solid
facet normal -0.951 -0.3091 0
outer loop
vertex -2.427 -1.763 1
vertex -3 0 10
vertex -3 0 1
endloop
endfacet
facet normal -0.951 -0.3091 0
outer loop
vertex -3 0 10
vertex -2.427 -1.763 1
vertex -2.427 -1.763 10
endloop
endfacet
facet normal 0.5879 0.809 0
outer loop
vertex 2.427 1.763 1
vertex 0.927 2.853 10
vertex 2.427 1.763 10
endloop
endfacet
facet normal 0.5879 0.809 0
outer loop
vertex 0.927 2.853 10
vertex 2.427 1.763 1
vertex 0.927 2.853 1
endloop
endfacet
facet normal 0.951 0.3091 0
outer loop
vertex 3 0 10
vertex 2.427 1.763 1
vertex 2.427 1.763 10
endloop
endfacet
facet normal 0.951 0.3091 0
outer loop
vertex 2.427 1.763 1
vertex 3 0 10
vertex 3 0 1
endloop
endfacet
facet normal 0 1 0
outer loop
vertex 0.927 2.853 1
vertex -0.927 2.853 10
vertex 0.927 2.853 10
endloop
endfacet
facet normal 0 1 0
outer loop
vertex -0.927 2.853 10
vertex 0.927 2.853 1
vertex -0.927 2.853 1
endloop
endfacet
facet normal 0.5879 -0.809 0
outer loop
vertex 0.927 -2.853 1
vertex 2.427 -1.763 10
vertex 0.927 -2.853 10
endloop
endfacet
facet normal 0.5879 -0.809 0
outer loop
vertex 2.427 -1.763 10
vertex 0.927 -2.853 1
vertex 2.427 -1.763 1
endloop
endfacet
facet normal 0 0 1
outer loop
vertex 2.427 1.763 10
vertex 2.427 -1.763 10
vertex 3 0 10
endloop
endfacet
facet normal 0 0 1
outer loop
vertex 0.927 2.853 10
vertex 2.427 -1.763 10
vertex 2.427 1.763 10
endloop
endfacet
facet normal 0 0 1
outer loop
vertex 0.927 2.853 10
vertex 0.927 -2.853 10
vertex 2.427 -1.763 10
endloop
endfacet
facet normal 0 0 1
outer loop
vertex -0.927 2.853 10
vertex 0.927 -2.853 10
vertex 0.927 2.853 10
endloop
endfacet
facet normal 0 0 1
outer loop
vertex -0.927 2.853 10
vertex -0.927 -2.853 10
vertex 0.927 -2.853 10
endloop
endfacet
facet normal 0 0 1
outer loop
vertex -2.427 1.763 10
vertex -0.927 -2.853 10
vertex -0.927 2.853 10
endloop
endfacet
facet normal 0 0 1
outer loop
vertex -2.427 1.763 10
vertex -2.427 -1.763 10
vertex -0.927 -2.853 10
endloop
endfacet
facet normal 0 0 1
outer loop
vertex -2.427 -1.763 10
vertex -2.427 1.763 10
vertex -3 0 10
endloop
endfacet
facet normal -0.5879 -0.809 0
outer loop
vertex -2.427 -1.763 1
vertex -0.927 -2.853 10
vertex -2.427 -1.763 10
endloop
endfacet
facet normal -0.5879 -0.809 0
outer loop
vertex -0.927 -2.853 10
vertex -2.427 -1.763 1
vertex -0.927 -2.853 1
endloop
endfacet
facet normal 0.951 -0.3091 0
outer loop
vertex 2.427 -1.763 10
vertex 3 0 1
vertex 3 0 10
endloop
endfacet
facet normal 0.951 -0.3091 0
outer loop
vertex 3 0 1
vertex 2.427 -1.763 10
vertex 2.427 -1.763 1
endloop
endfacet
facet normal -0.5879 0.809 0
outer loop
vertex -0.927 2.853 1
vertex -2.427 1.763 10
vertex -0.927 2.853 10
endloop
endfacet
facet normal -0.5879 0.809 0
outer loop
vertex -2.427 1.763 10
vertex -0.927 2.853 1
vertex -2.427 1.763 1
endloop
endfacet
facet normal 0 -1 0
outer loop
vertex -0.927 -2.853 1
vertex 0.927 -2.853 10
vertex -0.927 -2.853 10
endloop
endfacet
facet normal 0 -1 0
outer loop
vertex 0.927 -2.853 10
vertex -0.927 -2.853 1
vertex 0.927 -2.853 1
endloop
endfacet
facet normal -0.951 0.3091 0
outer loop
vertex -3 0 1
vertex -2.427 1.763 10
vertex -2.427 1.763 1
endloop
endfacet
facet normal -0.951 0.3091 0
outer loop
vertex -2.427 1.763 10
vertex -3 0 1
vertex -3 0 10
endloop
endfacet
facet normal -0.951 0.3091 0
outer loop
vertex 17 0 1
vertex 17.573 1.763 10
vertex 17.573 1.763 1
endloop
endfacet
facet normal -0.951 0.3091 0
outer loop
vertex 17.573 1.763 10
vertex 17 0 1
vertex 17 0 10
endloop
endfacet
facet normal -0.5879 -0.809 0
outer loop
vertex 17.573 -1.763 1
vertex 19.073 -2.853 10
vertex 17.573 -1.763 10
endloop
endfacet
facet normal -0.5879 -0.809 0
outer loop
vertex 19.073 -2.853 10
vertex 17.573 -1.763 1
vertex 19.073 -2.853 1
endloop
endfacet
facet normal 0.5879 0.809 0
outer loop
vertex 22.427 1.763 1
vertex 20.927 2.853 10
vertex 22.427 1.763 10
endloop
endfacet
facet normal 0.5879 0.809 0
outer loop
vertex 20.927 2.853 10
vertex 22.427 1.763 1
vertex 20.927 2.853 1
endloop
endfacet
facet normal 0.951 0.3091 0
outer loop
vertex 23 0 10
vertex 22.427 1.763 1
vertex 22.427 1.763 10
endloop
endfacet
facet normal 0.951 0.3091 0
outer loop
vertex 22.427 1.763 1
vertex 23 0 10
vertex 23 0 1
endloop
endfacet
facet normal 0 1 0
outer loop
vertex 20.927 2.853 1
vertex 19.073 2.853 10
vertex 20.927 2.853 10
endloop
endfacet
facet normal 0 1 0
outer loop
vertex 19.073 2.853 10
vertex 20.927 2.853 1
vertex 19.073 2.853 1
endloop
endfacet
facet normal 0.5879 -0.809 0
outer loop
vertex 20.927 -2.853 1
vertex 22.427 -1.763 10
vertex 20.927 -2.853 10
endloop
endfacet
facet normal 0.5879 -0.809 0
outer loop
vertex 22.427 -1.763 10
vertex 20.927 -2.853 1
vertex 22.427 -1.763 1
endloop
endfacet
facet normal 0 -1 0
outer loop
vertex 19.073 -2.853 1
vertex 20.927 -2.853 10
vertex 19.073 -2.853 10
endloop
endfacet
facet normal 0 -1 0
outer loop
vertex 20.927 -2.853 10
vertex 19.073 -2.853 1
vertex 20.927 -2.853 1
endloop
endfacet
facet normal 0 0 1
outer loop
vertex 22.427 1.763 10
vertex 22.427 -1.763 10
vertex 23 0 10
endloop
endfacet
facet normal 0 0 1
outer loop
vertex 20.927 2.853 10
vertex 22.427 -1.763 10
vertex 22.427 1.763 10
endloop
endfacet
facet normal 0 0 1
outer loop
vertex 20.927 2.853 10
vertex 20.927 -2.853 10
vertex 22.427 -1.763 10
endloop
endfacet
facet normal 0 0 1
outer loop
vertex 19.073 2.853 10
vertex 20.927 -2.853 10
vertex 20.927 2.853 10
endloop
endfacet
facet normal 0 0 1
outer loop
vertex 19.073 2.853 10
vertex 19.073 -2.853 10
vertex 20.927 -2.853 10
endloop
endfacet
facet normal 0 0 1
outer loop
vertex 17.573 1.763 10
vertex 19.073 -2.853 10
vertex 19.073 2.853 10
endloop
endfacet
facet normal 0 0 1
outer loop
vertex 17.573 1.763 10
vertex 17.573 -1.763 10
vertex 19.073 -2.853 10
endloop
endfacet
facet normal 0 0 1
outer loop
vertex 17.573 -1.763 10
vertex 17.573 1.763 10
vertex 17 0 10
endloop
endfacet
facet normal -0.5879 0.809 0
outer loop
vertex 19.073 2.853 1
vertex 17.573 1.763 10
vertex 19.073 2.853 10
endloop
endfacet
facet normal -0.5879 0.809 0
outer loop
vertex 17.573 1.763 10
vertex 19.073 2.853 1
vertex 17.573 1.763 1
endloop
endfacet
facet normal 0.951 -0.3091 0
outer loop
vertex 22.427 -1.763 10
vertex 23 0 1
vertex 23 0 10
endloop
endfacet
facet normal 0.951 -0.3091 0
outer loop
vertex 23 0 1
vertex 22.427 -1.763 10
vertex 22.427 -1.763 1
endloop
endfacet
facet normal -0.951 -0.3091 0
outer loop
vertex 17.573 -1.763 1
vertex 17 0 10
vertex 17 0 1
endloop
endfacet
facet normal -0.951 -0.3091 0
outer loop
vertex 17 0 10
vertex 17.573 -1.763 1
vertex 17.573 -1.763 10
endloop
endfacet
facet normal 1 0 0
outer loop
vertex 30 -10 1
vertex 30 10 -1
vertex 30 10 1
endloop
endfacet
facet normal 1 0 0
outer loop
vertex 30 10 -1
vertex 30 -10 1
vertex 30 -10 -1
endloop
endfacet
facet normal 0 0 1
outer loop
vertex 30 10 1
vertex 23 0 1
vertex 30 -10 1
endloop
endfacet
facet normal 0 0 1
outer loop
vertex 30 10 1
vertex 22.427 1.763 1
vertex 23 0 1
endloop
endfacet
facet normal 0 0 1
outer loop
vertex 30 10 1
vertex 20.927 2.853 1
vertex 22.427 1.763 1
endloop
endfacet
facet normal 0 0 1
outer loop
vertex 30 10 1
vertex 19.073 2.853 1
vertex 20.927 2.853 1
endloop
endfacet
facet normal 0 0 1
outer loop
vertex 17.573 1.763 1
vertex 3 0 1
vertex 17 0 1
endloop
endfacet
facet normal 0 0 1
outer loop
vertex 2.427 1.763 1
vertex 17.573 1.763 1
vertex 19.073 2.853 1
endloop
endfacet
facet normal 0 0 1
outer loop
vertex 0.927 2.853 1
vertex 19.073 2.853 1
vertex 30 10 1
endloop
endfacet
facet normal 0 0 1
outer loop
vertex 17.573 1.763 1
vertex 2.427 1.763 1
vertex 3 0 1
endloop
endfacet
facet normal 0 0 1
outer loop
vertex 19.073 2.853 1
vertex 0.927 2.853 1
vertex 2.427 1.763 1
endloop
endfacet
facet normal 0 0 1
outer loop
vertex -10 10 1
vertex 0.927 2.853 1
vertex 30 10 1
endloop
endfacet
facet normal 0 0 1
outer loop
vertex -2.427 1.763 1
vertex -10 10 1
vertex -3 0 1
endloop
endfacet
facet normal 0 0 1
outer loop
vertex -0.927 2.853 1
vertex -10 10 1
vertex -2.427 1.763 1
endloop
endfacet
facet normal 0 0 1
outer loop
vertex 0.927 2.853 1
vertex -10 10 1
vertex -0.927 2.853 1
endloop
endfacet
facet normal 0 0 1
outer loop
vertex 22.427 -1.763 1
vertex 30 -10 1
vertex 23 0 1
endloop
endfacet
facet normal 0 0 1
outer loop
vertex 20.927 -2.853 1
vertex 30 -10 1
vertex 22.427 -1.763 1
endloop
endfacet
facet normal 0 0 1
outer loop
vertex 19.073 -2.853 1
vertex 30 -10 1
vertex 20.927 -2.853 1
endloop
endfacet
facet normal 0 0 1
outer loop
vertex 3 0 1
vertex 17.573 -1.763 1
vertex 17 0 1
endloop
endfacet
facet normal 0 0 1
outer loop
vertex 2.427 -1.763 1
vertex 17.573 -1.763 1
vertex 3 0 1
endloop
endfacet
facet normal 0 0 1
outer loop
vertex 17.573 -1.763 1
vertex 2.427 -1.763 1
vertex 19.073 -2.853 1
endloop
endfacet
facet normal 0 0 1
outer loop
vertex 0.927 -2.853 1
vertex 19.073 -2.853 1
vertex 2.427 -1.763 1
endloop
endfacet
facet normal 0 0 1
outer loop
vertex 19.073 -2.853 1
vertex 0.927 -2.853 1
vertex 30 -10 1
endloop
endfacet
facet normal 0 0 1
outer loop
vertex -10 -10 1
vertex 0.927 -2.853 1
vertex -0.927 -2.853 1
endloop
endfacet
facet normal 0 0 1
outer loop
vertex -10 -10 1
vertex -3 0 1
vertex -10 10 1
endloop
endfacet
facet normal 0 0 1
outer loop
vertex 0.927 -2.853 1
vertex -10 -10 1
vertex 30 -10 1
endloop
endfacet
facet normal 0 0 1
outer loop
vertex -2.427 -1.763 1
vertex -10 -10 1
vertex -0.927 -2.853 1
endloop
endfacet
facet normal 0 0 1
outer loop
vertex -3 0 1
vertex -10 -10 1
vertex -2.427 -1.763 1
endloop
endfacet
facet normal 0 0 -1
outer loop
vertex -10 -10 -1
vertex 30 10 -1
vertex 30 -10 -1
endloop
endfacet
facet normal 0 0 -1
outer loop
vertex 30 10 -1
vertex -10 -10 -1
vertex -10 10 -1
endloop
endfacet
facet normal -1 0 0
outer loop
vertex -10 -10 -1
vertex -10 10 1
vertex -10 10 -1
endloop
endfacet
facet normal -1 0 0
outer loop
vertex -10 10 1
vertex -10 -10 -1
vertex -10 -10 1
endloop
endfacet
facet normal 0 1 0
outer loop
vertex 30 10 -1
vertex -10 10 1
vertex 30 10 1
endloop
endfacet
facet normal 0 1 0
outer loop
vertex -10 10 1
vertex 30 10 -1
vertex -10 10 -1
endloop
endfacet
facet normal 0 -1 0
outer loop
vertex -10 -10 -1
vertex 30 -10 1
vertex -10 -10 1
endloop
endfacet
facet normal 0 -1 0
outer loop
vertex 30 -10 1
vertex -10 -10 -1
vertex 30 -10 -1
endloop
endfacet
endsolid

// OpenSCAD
//  R is always counted without the teeth.
r_small = 5;
r_big = 15;

cylinder(10, 3, 3);
translate([r_small+r_big, 0, 0])
cylinder(10, 3, 3);

translate([20/2, 0, 0])
cube([40, 20, 2], center = true);
